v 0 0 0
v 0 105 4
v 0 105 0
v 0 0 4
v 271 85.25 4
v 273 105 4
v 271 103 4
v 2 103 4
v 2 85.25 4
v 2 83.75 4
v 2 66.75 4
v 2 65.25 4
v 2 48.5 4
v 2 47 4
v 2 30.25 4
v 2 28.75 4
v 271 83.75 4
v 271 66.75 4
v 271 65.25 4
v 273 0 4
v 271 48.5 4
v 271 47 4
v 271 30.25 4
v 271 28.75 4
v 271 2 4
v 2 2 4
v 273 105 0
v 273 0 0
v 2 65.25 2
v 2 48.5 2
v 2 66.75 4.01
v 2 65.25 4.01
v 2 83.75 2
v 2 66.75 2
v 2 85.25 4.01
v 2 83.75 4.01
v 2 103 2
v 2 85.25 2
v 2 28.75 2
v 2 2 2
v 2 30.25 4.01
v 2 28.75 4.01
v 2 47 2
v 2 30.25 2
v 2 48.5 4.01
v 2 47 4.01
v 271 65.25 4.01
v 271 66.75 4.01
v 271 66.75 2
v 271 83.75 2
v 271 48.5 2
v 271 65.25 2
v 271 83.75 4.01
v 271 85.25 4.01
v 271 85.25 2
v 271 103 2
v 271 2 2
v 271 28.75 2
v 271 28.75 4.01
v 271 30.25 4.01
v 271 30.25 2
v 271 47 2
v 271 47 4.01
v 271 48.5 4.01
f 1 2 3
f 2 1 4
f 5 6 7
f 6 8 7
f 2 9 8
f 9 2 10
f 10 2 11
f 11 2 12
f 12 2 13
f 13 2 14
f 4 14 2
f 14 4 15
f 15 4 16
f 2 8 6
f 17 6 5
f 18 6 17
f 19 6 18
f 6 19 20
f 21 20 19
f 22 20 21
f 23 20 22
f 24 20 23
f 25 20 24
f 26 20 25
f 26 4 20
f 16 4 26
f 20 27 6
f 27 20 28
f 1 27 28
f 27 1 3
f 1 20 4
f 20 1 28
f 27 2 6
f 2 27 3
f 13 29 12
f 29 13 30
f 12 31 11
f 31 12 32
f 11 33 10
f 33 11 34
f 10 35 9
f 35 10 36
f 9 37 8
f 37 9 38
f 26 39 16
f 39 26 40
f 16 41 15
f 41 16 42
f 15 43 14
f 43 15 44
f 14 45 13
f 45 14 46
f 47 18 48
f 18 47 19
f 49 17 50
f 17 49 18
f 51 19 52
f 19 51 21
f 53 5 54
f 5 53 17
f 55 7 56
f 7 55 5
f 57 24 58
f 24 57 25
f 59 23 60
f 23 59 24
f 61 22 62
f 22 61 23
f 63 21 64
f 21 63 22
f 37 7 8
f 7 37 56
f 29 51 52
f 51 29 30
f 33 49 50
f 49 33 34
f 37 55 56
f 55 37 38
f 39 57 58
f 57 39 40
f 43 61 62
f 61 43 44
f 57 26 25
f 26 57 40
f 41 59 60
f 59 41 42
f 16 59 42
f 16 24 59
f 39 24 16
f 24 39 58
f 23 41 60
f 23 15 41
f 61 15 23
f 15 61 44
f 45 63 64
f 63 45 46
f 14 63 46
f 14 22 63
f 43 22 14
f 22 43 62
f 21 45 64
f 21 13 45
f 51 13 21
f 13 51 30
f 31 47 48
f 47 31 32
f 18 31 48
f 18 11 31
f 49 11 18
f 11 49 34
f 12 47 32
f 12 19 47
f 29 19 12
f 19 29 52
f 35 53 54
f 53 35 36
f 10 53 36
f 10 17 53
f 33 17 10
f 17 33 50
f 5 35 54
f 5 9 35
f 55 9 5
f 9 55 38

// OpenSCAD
// Generated by SolidPython 1.1.3 on 2025-06-07 19:35:25
$fn = 64;


union() {
	difference() {
		cube(size = [273, 105, 4]);
		translate(v = [0, 0, 2]) {
			translate(v = [2.0000000000, 2.0000000000, 0]) {
				cube(size = [269, 101, 2.0200000000]);
			}
		}
	}
	translate(v = [0, 0, 2]) {
		translate(v = [2.0000000000, 28.7500000000, 0]) {
			cube(size = [269, 1.5000000000, 2.0100000000]);
		}
	}
	translate(v = [0, 0, 2]) {
		translate(v = [2.0000000000, 47.0000000000, 0]) {
			cube(size = [269, 1.5000000000, 2.0100000000]);
		}
	}
	translate(v = [0, 0, 2]) {
		translate(v = [2.0000000000, 65.2500000000, 0]) {
			cube(size = [269, 1.5000000000, 2.0100000000]);
		}
	}
	translate(v = [0, 0, 2]) {
		translate(v = [2.0000000000, 83.7500000000, 0]) {
			cube(size = [269, 1.5000000000, 2.0100000000]);
		}
	}
}
/***********************************************
*********      SolidPython code:      **********
************************************************
 
import numpy as np
from solid import *
from solid.utils import *

z = 0.01
z2 = z*2
m = 2

t = translate
tx = lambda e, x: t([x, 0, 0])(e)
ty = lambda e, x: t([0, x, 0])(e)
tz = lambda e, x: t([0, 0, x])(e)
txy = lambda e, x, y: t([x, y, 0])(e)
r = rotate
rx = lambda e, x: r([x, 0, 0])(e)
ry = lambda e, x: r([0, x, 0])(e)
rz = lambda e, x: r([0, 0, x])(e)
sc = scale
sx = lambda e, x: sc([x, 1, 1])(e)
sy = lambda e, x: sc([1, x, 1])(e)
sz = lambda e, x: sc([1, 1, x])(e)
cos = np.cos
sin = np.sin
pi = np.pi
save = lambda m, n: scad_render_to_file(m, n, file_header='$fn = 64;')

# Parameters
keyboard_width = 269      # Width of the keyboard cover
keyboard_depth = 101      # Depth of the keyboard cover
keyboard_thickness = 2    # Key height
support_lines = [
    27.5,
    45.75,
    64,
    82.5,
]
support_thickness = 1.5   # Thickness of the support lines

touchpad_width = 133      # Width of the touchpad cover
touchpad_depth = 89       # Depth of the touchpad cover
touchpad_margin = 0.5  # Touchpad indentation height

cover_thickness = 2       # Thickness of the keyboard cover
cover_margin = 4          # Margin around the keyboard and touchpad covers


def create_keyboard_cover():
    base = cube([
        keyboard_width + cover_margin,
        keyboard_depth + cover_margin,
        cover_thickness + keyboard_thickness
    ])

    hole = cube([
        keyboard_width,
        keyboard_depth,
        keyboard_thickness + z2
    ])
    hole = txy(hole, cover_margin / 2, cover_margin / 2)
    hole = tz(hole, cover_thickness)

    support = []
    for y in support_lines:
        line = cube([keyboard_width, support_thickness, keyboard_thickness + z])
        line = txy(line, cover_margin / 2, y - support_thickness / 2 + cover_margin / 2)
        line = tz(line, cover_thickness)
        support.append(line)

    cover = base - hole + support

    return cover


def create_touchpad_cover():
    base = cube([
        touchpad_width + cover_margin * 3,
        touchpad_depth + cover_margin * 3,
        cover_thickness + touchpad_margin * 2
    ])

    hole = cube([
        touchpad_width - cover_margin,
        touchpad_depth - cover_margin,
        touchpad_margin * 2 + cover_thickness
    ])
    hole = txy(hole, cover_margin * 2, cover_margin * 2)
    hole = tz(hole, cover_thickness)

    cover = base - hole

    return cover


save(create_keyboard_cover(), "cat-keyboard-protection.keyboard.scad")
save(create_touchpad_cover(), "cat-keyboard-protection.touchpad.scad")
 
 
************************************************/
